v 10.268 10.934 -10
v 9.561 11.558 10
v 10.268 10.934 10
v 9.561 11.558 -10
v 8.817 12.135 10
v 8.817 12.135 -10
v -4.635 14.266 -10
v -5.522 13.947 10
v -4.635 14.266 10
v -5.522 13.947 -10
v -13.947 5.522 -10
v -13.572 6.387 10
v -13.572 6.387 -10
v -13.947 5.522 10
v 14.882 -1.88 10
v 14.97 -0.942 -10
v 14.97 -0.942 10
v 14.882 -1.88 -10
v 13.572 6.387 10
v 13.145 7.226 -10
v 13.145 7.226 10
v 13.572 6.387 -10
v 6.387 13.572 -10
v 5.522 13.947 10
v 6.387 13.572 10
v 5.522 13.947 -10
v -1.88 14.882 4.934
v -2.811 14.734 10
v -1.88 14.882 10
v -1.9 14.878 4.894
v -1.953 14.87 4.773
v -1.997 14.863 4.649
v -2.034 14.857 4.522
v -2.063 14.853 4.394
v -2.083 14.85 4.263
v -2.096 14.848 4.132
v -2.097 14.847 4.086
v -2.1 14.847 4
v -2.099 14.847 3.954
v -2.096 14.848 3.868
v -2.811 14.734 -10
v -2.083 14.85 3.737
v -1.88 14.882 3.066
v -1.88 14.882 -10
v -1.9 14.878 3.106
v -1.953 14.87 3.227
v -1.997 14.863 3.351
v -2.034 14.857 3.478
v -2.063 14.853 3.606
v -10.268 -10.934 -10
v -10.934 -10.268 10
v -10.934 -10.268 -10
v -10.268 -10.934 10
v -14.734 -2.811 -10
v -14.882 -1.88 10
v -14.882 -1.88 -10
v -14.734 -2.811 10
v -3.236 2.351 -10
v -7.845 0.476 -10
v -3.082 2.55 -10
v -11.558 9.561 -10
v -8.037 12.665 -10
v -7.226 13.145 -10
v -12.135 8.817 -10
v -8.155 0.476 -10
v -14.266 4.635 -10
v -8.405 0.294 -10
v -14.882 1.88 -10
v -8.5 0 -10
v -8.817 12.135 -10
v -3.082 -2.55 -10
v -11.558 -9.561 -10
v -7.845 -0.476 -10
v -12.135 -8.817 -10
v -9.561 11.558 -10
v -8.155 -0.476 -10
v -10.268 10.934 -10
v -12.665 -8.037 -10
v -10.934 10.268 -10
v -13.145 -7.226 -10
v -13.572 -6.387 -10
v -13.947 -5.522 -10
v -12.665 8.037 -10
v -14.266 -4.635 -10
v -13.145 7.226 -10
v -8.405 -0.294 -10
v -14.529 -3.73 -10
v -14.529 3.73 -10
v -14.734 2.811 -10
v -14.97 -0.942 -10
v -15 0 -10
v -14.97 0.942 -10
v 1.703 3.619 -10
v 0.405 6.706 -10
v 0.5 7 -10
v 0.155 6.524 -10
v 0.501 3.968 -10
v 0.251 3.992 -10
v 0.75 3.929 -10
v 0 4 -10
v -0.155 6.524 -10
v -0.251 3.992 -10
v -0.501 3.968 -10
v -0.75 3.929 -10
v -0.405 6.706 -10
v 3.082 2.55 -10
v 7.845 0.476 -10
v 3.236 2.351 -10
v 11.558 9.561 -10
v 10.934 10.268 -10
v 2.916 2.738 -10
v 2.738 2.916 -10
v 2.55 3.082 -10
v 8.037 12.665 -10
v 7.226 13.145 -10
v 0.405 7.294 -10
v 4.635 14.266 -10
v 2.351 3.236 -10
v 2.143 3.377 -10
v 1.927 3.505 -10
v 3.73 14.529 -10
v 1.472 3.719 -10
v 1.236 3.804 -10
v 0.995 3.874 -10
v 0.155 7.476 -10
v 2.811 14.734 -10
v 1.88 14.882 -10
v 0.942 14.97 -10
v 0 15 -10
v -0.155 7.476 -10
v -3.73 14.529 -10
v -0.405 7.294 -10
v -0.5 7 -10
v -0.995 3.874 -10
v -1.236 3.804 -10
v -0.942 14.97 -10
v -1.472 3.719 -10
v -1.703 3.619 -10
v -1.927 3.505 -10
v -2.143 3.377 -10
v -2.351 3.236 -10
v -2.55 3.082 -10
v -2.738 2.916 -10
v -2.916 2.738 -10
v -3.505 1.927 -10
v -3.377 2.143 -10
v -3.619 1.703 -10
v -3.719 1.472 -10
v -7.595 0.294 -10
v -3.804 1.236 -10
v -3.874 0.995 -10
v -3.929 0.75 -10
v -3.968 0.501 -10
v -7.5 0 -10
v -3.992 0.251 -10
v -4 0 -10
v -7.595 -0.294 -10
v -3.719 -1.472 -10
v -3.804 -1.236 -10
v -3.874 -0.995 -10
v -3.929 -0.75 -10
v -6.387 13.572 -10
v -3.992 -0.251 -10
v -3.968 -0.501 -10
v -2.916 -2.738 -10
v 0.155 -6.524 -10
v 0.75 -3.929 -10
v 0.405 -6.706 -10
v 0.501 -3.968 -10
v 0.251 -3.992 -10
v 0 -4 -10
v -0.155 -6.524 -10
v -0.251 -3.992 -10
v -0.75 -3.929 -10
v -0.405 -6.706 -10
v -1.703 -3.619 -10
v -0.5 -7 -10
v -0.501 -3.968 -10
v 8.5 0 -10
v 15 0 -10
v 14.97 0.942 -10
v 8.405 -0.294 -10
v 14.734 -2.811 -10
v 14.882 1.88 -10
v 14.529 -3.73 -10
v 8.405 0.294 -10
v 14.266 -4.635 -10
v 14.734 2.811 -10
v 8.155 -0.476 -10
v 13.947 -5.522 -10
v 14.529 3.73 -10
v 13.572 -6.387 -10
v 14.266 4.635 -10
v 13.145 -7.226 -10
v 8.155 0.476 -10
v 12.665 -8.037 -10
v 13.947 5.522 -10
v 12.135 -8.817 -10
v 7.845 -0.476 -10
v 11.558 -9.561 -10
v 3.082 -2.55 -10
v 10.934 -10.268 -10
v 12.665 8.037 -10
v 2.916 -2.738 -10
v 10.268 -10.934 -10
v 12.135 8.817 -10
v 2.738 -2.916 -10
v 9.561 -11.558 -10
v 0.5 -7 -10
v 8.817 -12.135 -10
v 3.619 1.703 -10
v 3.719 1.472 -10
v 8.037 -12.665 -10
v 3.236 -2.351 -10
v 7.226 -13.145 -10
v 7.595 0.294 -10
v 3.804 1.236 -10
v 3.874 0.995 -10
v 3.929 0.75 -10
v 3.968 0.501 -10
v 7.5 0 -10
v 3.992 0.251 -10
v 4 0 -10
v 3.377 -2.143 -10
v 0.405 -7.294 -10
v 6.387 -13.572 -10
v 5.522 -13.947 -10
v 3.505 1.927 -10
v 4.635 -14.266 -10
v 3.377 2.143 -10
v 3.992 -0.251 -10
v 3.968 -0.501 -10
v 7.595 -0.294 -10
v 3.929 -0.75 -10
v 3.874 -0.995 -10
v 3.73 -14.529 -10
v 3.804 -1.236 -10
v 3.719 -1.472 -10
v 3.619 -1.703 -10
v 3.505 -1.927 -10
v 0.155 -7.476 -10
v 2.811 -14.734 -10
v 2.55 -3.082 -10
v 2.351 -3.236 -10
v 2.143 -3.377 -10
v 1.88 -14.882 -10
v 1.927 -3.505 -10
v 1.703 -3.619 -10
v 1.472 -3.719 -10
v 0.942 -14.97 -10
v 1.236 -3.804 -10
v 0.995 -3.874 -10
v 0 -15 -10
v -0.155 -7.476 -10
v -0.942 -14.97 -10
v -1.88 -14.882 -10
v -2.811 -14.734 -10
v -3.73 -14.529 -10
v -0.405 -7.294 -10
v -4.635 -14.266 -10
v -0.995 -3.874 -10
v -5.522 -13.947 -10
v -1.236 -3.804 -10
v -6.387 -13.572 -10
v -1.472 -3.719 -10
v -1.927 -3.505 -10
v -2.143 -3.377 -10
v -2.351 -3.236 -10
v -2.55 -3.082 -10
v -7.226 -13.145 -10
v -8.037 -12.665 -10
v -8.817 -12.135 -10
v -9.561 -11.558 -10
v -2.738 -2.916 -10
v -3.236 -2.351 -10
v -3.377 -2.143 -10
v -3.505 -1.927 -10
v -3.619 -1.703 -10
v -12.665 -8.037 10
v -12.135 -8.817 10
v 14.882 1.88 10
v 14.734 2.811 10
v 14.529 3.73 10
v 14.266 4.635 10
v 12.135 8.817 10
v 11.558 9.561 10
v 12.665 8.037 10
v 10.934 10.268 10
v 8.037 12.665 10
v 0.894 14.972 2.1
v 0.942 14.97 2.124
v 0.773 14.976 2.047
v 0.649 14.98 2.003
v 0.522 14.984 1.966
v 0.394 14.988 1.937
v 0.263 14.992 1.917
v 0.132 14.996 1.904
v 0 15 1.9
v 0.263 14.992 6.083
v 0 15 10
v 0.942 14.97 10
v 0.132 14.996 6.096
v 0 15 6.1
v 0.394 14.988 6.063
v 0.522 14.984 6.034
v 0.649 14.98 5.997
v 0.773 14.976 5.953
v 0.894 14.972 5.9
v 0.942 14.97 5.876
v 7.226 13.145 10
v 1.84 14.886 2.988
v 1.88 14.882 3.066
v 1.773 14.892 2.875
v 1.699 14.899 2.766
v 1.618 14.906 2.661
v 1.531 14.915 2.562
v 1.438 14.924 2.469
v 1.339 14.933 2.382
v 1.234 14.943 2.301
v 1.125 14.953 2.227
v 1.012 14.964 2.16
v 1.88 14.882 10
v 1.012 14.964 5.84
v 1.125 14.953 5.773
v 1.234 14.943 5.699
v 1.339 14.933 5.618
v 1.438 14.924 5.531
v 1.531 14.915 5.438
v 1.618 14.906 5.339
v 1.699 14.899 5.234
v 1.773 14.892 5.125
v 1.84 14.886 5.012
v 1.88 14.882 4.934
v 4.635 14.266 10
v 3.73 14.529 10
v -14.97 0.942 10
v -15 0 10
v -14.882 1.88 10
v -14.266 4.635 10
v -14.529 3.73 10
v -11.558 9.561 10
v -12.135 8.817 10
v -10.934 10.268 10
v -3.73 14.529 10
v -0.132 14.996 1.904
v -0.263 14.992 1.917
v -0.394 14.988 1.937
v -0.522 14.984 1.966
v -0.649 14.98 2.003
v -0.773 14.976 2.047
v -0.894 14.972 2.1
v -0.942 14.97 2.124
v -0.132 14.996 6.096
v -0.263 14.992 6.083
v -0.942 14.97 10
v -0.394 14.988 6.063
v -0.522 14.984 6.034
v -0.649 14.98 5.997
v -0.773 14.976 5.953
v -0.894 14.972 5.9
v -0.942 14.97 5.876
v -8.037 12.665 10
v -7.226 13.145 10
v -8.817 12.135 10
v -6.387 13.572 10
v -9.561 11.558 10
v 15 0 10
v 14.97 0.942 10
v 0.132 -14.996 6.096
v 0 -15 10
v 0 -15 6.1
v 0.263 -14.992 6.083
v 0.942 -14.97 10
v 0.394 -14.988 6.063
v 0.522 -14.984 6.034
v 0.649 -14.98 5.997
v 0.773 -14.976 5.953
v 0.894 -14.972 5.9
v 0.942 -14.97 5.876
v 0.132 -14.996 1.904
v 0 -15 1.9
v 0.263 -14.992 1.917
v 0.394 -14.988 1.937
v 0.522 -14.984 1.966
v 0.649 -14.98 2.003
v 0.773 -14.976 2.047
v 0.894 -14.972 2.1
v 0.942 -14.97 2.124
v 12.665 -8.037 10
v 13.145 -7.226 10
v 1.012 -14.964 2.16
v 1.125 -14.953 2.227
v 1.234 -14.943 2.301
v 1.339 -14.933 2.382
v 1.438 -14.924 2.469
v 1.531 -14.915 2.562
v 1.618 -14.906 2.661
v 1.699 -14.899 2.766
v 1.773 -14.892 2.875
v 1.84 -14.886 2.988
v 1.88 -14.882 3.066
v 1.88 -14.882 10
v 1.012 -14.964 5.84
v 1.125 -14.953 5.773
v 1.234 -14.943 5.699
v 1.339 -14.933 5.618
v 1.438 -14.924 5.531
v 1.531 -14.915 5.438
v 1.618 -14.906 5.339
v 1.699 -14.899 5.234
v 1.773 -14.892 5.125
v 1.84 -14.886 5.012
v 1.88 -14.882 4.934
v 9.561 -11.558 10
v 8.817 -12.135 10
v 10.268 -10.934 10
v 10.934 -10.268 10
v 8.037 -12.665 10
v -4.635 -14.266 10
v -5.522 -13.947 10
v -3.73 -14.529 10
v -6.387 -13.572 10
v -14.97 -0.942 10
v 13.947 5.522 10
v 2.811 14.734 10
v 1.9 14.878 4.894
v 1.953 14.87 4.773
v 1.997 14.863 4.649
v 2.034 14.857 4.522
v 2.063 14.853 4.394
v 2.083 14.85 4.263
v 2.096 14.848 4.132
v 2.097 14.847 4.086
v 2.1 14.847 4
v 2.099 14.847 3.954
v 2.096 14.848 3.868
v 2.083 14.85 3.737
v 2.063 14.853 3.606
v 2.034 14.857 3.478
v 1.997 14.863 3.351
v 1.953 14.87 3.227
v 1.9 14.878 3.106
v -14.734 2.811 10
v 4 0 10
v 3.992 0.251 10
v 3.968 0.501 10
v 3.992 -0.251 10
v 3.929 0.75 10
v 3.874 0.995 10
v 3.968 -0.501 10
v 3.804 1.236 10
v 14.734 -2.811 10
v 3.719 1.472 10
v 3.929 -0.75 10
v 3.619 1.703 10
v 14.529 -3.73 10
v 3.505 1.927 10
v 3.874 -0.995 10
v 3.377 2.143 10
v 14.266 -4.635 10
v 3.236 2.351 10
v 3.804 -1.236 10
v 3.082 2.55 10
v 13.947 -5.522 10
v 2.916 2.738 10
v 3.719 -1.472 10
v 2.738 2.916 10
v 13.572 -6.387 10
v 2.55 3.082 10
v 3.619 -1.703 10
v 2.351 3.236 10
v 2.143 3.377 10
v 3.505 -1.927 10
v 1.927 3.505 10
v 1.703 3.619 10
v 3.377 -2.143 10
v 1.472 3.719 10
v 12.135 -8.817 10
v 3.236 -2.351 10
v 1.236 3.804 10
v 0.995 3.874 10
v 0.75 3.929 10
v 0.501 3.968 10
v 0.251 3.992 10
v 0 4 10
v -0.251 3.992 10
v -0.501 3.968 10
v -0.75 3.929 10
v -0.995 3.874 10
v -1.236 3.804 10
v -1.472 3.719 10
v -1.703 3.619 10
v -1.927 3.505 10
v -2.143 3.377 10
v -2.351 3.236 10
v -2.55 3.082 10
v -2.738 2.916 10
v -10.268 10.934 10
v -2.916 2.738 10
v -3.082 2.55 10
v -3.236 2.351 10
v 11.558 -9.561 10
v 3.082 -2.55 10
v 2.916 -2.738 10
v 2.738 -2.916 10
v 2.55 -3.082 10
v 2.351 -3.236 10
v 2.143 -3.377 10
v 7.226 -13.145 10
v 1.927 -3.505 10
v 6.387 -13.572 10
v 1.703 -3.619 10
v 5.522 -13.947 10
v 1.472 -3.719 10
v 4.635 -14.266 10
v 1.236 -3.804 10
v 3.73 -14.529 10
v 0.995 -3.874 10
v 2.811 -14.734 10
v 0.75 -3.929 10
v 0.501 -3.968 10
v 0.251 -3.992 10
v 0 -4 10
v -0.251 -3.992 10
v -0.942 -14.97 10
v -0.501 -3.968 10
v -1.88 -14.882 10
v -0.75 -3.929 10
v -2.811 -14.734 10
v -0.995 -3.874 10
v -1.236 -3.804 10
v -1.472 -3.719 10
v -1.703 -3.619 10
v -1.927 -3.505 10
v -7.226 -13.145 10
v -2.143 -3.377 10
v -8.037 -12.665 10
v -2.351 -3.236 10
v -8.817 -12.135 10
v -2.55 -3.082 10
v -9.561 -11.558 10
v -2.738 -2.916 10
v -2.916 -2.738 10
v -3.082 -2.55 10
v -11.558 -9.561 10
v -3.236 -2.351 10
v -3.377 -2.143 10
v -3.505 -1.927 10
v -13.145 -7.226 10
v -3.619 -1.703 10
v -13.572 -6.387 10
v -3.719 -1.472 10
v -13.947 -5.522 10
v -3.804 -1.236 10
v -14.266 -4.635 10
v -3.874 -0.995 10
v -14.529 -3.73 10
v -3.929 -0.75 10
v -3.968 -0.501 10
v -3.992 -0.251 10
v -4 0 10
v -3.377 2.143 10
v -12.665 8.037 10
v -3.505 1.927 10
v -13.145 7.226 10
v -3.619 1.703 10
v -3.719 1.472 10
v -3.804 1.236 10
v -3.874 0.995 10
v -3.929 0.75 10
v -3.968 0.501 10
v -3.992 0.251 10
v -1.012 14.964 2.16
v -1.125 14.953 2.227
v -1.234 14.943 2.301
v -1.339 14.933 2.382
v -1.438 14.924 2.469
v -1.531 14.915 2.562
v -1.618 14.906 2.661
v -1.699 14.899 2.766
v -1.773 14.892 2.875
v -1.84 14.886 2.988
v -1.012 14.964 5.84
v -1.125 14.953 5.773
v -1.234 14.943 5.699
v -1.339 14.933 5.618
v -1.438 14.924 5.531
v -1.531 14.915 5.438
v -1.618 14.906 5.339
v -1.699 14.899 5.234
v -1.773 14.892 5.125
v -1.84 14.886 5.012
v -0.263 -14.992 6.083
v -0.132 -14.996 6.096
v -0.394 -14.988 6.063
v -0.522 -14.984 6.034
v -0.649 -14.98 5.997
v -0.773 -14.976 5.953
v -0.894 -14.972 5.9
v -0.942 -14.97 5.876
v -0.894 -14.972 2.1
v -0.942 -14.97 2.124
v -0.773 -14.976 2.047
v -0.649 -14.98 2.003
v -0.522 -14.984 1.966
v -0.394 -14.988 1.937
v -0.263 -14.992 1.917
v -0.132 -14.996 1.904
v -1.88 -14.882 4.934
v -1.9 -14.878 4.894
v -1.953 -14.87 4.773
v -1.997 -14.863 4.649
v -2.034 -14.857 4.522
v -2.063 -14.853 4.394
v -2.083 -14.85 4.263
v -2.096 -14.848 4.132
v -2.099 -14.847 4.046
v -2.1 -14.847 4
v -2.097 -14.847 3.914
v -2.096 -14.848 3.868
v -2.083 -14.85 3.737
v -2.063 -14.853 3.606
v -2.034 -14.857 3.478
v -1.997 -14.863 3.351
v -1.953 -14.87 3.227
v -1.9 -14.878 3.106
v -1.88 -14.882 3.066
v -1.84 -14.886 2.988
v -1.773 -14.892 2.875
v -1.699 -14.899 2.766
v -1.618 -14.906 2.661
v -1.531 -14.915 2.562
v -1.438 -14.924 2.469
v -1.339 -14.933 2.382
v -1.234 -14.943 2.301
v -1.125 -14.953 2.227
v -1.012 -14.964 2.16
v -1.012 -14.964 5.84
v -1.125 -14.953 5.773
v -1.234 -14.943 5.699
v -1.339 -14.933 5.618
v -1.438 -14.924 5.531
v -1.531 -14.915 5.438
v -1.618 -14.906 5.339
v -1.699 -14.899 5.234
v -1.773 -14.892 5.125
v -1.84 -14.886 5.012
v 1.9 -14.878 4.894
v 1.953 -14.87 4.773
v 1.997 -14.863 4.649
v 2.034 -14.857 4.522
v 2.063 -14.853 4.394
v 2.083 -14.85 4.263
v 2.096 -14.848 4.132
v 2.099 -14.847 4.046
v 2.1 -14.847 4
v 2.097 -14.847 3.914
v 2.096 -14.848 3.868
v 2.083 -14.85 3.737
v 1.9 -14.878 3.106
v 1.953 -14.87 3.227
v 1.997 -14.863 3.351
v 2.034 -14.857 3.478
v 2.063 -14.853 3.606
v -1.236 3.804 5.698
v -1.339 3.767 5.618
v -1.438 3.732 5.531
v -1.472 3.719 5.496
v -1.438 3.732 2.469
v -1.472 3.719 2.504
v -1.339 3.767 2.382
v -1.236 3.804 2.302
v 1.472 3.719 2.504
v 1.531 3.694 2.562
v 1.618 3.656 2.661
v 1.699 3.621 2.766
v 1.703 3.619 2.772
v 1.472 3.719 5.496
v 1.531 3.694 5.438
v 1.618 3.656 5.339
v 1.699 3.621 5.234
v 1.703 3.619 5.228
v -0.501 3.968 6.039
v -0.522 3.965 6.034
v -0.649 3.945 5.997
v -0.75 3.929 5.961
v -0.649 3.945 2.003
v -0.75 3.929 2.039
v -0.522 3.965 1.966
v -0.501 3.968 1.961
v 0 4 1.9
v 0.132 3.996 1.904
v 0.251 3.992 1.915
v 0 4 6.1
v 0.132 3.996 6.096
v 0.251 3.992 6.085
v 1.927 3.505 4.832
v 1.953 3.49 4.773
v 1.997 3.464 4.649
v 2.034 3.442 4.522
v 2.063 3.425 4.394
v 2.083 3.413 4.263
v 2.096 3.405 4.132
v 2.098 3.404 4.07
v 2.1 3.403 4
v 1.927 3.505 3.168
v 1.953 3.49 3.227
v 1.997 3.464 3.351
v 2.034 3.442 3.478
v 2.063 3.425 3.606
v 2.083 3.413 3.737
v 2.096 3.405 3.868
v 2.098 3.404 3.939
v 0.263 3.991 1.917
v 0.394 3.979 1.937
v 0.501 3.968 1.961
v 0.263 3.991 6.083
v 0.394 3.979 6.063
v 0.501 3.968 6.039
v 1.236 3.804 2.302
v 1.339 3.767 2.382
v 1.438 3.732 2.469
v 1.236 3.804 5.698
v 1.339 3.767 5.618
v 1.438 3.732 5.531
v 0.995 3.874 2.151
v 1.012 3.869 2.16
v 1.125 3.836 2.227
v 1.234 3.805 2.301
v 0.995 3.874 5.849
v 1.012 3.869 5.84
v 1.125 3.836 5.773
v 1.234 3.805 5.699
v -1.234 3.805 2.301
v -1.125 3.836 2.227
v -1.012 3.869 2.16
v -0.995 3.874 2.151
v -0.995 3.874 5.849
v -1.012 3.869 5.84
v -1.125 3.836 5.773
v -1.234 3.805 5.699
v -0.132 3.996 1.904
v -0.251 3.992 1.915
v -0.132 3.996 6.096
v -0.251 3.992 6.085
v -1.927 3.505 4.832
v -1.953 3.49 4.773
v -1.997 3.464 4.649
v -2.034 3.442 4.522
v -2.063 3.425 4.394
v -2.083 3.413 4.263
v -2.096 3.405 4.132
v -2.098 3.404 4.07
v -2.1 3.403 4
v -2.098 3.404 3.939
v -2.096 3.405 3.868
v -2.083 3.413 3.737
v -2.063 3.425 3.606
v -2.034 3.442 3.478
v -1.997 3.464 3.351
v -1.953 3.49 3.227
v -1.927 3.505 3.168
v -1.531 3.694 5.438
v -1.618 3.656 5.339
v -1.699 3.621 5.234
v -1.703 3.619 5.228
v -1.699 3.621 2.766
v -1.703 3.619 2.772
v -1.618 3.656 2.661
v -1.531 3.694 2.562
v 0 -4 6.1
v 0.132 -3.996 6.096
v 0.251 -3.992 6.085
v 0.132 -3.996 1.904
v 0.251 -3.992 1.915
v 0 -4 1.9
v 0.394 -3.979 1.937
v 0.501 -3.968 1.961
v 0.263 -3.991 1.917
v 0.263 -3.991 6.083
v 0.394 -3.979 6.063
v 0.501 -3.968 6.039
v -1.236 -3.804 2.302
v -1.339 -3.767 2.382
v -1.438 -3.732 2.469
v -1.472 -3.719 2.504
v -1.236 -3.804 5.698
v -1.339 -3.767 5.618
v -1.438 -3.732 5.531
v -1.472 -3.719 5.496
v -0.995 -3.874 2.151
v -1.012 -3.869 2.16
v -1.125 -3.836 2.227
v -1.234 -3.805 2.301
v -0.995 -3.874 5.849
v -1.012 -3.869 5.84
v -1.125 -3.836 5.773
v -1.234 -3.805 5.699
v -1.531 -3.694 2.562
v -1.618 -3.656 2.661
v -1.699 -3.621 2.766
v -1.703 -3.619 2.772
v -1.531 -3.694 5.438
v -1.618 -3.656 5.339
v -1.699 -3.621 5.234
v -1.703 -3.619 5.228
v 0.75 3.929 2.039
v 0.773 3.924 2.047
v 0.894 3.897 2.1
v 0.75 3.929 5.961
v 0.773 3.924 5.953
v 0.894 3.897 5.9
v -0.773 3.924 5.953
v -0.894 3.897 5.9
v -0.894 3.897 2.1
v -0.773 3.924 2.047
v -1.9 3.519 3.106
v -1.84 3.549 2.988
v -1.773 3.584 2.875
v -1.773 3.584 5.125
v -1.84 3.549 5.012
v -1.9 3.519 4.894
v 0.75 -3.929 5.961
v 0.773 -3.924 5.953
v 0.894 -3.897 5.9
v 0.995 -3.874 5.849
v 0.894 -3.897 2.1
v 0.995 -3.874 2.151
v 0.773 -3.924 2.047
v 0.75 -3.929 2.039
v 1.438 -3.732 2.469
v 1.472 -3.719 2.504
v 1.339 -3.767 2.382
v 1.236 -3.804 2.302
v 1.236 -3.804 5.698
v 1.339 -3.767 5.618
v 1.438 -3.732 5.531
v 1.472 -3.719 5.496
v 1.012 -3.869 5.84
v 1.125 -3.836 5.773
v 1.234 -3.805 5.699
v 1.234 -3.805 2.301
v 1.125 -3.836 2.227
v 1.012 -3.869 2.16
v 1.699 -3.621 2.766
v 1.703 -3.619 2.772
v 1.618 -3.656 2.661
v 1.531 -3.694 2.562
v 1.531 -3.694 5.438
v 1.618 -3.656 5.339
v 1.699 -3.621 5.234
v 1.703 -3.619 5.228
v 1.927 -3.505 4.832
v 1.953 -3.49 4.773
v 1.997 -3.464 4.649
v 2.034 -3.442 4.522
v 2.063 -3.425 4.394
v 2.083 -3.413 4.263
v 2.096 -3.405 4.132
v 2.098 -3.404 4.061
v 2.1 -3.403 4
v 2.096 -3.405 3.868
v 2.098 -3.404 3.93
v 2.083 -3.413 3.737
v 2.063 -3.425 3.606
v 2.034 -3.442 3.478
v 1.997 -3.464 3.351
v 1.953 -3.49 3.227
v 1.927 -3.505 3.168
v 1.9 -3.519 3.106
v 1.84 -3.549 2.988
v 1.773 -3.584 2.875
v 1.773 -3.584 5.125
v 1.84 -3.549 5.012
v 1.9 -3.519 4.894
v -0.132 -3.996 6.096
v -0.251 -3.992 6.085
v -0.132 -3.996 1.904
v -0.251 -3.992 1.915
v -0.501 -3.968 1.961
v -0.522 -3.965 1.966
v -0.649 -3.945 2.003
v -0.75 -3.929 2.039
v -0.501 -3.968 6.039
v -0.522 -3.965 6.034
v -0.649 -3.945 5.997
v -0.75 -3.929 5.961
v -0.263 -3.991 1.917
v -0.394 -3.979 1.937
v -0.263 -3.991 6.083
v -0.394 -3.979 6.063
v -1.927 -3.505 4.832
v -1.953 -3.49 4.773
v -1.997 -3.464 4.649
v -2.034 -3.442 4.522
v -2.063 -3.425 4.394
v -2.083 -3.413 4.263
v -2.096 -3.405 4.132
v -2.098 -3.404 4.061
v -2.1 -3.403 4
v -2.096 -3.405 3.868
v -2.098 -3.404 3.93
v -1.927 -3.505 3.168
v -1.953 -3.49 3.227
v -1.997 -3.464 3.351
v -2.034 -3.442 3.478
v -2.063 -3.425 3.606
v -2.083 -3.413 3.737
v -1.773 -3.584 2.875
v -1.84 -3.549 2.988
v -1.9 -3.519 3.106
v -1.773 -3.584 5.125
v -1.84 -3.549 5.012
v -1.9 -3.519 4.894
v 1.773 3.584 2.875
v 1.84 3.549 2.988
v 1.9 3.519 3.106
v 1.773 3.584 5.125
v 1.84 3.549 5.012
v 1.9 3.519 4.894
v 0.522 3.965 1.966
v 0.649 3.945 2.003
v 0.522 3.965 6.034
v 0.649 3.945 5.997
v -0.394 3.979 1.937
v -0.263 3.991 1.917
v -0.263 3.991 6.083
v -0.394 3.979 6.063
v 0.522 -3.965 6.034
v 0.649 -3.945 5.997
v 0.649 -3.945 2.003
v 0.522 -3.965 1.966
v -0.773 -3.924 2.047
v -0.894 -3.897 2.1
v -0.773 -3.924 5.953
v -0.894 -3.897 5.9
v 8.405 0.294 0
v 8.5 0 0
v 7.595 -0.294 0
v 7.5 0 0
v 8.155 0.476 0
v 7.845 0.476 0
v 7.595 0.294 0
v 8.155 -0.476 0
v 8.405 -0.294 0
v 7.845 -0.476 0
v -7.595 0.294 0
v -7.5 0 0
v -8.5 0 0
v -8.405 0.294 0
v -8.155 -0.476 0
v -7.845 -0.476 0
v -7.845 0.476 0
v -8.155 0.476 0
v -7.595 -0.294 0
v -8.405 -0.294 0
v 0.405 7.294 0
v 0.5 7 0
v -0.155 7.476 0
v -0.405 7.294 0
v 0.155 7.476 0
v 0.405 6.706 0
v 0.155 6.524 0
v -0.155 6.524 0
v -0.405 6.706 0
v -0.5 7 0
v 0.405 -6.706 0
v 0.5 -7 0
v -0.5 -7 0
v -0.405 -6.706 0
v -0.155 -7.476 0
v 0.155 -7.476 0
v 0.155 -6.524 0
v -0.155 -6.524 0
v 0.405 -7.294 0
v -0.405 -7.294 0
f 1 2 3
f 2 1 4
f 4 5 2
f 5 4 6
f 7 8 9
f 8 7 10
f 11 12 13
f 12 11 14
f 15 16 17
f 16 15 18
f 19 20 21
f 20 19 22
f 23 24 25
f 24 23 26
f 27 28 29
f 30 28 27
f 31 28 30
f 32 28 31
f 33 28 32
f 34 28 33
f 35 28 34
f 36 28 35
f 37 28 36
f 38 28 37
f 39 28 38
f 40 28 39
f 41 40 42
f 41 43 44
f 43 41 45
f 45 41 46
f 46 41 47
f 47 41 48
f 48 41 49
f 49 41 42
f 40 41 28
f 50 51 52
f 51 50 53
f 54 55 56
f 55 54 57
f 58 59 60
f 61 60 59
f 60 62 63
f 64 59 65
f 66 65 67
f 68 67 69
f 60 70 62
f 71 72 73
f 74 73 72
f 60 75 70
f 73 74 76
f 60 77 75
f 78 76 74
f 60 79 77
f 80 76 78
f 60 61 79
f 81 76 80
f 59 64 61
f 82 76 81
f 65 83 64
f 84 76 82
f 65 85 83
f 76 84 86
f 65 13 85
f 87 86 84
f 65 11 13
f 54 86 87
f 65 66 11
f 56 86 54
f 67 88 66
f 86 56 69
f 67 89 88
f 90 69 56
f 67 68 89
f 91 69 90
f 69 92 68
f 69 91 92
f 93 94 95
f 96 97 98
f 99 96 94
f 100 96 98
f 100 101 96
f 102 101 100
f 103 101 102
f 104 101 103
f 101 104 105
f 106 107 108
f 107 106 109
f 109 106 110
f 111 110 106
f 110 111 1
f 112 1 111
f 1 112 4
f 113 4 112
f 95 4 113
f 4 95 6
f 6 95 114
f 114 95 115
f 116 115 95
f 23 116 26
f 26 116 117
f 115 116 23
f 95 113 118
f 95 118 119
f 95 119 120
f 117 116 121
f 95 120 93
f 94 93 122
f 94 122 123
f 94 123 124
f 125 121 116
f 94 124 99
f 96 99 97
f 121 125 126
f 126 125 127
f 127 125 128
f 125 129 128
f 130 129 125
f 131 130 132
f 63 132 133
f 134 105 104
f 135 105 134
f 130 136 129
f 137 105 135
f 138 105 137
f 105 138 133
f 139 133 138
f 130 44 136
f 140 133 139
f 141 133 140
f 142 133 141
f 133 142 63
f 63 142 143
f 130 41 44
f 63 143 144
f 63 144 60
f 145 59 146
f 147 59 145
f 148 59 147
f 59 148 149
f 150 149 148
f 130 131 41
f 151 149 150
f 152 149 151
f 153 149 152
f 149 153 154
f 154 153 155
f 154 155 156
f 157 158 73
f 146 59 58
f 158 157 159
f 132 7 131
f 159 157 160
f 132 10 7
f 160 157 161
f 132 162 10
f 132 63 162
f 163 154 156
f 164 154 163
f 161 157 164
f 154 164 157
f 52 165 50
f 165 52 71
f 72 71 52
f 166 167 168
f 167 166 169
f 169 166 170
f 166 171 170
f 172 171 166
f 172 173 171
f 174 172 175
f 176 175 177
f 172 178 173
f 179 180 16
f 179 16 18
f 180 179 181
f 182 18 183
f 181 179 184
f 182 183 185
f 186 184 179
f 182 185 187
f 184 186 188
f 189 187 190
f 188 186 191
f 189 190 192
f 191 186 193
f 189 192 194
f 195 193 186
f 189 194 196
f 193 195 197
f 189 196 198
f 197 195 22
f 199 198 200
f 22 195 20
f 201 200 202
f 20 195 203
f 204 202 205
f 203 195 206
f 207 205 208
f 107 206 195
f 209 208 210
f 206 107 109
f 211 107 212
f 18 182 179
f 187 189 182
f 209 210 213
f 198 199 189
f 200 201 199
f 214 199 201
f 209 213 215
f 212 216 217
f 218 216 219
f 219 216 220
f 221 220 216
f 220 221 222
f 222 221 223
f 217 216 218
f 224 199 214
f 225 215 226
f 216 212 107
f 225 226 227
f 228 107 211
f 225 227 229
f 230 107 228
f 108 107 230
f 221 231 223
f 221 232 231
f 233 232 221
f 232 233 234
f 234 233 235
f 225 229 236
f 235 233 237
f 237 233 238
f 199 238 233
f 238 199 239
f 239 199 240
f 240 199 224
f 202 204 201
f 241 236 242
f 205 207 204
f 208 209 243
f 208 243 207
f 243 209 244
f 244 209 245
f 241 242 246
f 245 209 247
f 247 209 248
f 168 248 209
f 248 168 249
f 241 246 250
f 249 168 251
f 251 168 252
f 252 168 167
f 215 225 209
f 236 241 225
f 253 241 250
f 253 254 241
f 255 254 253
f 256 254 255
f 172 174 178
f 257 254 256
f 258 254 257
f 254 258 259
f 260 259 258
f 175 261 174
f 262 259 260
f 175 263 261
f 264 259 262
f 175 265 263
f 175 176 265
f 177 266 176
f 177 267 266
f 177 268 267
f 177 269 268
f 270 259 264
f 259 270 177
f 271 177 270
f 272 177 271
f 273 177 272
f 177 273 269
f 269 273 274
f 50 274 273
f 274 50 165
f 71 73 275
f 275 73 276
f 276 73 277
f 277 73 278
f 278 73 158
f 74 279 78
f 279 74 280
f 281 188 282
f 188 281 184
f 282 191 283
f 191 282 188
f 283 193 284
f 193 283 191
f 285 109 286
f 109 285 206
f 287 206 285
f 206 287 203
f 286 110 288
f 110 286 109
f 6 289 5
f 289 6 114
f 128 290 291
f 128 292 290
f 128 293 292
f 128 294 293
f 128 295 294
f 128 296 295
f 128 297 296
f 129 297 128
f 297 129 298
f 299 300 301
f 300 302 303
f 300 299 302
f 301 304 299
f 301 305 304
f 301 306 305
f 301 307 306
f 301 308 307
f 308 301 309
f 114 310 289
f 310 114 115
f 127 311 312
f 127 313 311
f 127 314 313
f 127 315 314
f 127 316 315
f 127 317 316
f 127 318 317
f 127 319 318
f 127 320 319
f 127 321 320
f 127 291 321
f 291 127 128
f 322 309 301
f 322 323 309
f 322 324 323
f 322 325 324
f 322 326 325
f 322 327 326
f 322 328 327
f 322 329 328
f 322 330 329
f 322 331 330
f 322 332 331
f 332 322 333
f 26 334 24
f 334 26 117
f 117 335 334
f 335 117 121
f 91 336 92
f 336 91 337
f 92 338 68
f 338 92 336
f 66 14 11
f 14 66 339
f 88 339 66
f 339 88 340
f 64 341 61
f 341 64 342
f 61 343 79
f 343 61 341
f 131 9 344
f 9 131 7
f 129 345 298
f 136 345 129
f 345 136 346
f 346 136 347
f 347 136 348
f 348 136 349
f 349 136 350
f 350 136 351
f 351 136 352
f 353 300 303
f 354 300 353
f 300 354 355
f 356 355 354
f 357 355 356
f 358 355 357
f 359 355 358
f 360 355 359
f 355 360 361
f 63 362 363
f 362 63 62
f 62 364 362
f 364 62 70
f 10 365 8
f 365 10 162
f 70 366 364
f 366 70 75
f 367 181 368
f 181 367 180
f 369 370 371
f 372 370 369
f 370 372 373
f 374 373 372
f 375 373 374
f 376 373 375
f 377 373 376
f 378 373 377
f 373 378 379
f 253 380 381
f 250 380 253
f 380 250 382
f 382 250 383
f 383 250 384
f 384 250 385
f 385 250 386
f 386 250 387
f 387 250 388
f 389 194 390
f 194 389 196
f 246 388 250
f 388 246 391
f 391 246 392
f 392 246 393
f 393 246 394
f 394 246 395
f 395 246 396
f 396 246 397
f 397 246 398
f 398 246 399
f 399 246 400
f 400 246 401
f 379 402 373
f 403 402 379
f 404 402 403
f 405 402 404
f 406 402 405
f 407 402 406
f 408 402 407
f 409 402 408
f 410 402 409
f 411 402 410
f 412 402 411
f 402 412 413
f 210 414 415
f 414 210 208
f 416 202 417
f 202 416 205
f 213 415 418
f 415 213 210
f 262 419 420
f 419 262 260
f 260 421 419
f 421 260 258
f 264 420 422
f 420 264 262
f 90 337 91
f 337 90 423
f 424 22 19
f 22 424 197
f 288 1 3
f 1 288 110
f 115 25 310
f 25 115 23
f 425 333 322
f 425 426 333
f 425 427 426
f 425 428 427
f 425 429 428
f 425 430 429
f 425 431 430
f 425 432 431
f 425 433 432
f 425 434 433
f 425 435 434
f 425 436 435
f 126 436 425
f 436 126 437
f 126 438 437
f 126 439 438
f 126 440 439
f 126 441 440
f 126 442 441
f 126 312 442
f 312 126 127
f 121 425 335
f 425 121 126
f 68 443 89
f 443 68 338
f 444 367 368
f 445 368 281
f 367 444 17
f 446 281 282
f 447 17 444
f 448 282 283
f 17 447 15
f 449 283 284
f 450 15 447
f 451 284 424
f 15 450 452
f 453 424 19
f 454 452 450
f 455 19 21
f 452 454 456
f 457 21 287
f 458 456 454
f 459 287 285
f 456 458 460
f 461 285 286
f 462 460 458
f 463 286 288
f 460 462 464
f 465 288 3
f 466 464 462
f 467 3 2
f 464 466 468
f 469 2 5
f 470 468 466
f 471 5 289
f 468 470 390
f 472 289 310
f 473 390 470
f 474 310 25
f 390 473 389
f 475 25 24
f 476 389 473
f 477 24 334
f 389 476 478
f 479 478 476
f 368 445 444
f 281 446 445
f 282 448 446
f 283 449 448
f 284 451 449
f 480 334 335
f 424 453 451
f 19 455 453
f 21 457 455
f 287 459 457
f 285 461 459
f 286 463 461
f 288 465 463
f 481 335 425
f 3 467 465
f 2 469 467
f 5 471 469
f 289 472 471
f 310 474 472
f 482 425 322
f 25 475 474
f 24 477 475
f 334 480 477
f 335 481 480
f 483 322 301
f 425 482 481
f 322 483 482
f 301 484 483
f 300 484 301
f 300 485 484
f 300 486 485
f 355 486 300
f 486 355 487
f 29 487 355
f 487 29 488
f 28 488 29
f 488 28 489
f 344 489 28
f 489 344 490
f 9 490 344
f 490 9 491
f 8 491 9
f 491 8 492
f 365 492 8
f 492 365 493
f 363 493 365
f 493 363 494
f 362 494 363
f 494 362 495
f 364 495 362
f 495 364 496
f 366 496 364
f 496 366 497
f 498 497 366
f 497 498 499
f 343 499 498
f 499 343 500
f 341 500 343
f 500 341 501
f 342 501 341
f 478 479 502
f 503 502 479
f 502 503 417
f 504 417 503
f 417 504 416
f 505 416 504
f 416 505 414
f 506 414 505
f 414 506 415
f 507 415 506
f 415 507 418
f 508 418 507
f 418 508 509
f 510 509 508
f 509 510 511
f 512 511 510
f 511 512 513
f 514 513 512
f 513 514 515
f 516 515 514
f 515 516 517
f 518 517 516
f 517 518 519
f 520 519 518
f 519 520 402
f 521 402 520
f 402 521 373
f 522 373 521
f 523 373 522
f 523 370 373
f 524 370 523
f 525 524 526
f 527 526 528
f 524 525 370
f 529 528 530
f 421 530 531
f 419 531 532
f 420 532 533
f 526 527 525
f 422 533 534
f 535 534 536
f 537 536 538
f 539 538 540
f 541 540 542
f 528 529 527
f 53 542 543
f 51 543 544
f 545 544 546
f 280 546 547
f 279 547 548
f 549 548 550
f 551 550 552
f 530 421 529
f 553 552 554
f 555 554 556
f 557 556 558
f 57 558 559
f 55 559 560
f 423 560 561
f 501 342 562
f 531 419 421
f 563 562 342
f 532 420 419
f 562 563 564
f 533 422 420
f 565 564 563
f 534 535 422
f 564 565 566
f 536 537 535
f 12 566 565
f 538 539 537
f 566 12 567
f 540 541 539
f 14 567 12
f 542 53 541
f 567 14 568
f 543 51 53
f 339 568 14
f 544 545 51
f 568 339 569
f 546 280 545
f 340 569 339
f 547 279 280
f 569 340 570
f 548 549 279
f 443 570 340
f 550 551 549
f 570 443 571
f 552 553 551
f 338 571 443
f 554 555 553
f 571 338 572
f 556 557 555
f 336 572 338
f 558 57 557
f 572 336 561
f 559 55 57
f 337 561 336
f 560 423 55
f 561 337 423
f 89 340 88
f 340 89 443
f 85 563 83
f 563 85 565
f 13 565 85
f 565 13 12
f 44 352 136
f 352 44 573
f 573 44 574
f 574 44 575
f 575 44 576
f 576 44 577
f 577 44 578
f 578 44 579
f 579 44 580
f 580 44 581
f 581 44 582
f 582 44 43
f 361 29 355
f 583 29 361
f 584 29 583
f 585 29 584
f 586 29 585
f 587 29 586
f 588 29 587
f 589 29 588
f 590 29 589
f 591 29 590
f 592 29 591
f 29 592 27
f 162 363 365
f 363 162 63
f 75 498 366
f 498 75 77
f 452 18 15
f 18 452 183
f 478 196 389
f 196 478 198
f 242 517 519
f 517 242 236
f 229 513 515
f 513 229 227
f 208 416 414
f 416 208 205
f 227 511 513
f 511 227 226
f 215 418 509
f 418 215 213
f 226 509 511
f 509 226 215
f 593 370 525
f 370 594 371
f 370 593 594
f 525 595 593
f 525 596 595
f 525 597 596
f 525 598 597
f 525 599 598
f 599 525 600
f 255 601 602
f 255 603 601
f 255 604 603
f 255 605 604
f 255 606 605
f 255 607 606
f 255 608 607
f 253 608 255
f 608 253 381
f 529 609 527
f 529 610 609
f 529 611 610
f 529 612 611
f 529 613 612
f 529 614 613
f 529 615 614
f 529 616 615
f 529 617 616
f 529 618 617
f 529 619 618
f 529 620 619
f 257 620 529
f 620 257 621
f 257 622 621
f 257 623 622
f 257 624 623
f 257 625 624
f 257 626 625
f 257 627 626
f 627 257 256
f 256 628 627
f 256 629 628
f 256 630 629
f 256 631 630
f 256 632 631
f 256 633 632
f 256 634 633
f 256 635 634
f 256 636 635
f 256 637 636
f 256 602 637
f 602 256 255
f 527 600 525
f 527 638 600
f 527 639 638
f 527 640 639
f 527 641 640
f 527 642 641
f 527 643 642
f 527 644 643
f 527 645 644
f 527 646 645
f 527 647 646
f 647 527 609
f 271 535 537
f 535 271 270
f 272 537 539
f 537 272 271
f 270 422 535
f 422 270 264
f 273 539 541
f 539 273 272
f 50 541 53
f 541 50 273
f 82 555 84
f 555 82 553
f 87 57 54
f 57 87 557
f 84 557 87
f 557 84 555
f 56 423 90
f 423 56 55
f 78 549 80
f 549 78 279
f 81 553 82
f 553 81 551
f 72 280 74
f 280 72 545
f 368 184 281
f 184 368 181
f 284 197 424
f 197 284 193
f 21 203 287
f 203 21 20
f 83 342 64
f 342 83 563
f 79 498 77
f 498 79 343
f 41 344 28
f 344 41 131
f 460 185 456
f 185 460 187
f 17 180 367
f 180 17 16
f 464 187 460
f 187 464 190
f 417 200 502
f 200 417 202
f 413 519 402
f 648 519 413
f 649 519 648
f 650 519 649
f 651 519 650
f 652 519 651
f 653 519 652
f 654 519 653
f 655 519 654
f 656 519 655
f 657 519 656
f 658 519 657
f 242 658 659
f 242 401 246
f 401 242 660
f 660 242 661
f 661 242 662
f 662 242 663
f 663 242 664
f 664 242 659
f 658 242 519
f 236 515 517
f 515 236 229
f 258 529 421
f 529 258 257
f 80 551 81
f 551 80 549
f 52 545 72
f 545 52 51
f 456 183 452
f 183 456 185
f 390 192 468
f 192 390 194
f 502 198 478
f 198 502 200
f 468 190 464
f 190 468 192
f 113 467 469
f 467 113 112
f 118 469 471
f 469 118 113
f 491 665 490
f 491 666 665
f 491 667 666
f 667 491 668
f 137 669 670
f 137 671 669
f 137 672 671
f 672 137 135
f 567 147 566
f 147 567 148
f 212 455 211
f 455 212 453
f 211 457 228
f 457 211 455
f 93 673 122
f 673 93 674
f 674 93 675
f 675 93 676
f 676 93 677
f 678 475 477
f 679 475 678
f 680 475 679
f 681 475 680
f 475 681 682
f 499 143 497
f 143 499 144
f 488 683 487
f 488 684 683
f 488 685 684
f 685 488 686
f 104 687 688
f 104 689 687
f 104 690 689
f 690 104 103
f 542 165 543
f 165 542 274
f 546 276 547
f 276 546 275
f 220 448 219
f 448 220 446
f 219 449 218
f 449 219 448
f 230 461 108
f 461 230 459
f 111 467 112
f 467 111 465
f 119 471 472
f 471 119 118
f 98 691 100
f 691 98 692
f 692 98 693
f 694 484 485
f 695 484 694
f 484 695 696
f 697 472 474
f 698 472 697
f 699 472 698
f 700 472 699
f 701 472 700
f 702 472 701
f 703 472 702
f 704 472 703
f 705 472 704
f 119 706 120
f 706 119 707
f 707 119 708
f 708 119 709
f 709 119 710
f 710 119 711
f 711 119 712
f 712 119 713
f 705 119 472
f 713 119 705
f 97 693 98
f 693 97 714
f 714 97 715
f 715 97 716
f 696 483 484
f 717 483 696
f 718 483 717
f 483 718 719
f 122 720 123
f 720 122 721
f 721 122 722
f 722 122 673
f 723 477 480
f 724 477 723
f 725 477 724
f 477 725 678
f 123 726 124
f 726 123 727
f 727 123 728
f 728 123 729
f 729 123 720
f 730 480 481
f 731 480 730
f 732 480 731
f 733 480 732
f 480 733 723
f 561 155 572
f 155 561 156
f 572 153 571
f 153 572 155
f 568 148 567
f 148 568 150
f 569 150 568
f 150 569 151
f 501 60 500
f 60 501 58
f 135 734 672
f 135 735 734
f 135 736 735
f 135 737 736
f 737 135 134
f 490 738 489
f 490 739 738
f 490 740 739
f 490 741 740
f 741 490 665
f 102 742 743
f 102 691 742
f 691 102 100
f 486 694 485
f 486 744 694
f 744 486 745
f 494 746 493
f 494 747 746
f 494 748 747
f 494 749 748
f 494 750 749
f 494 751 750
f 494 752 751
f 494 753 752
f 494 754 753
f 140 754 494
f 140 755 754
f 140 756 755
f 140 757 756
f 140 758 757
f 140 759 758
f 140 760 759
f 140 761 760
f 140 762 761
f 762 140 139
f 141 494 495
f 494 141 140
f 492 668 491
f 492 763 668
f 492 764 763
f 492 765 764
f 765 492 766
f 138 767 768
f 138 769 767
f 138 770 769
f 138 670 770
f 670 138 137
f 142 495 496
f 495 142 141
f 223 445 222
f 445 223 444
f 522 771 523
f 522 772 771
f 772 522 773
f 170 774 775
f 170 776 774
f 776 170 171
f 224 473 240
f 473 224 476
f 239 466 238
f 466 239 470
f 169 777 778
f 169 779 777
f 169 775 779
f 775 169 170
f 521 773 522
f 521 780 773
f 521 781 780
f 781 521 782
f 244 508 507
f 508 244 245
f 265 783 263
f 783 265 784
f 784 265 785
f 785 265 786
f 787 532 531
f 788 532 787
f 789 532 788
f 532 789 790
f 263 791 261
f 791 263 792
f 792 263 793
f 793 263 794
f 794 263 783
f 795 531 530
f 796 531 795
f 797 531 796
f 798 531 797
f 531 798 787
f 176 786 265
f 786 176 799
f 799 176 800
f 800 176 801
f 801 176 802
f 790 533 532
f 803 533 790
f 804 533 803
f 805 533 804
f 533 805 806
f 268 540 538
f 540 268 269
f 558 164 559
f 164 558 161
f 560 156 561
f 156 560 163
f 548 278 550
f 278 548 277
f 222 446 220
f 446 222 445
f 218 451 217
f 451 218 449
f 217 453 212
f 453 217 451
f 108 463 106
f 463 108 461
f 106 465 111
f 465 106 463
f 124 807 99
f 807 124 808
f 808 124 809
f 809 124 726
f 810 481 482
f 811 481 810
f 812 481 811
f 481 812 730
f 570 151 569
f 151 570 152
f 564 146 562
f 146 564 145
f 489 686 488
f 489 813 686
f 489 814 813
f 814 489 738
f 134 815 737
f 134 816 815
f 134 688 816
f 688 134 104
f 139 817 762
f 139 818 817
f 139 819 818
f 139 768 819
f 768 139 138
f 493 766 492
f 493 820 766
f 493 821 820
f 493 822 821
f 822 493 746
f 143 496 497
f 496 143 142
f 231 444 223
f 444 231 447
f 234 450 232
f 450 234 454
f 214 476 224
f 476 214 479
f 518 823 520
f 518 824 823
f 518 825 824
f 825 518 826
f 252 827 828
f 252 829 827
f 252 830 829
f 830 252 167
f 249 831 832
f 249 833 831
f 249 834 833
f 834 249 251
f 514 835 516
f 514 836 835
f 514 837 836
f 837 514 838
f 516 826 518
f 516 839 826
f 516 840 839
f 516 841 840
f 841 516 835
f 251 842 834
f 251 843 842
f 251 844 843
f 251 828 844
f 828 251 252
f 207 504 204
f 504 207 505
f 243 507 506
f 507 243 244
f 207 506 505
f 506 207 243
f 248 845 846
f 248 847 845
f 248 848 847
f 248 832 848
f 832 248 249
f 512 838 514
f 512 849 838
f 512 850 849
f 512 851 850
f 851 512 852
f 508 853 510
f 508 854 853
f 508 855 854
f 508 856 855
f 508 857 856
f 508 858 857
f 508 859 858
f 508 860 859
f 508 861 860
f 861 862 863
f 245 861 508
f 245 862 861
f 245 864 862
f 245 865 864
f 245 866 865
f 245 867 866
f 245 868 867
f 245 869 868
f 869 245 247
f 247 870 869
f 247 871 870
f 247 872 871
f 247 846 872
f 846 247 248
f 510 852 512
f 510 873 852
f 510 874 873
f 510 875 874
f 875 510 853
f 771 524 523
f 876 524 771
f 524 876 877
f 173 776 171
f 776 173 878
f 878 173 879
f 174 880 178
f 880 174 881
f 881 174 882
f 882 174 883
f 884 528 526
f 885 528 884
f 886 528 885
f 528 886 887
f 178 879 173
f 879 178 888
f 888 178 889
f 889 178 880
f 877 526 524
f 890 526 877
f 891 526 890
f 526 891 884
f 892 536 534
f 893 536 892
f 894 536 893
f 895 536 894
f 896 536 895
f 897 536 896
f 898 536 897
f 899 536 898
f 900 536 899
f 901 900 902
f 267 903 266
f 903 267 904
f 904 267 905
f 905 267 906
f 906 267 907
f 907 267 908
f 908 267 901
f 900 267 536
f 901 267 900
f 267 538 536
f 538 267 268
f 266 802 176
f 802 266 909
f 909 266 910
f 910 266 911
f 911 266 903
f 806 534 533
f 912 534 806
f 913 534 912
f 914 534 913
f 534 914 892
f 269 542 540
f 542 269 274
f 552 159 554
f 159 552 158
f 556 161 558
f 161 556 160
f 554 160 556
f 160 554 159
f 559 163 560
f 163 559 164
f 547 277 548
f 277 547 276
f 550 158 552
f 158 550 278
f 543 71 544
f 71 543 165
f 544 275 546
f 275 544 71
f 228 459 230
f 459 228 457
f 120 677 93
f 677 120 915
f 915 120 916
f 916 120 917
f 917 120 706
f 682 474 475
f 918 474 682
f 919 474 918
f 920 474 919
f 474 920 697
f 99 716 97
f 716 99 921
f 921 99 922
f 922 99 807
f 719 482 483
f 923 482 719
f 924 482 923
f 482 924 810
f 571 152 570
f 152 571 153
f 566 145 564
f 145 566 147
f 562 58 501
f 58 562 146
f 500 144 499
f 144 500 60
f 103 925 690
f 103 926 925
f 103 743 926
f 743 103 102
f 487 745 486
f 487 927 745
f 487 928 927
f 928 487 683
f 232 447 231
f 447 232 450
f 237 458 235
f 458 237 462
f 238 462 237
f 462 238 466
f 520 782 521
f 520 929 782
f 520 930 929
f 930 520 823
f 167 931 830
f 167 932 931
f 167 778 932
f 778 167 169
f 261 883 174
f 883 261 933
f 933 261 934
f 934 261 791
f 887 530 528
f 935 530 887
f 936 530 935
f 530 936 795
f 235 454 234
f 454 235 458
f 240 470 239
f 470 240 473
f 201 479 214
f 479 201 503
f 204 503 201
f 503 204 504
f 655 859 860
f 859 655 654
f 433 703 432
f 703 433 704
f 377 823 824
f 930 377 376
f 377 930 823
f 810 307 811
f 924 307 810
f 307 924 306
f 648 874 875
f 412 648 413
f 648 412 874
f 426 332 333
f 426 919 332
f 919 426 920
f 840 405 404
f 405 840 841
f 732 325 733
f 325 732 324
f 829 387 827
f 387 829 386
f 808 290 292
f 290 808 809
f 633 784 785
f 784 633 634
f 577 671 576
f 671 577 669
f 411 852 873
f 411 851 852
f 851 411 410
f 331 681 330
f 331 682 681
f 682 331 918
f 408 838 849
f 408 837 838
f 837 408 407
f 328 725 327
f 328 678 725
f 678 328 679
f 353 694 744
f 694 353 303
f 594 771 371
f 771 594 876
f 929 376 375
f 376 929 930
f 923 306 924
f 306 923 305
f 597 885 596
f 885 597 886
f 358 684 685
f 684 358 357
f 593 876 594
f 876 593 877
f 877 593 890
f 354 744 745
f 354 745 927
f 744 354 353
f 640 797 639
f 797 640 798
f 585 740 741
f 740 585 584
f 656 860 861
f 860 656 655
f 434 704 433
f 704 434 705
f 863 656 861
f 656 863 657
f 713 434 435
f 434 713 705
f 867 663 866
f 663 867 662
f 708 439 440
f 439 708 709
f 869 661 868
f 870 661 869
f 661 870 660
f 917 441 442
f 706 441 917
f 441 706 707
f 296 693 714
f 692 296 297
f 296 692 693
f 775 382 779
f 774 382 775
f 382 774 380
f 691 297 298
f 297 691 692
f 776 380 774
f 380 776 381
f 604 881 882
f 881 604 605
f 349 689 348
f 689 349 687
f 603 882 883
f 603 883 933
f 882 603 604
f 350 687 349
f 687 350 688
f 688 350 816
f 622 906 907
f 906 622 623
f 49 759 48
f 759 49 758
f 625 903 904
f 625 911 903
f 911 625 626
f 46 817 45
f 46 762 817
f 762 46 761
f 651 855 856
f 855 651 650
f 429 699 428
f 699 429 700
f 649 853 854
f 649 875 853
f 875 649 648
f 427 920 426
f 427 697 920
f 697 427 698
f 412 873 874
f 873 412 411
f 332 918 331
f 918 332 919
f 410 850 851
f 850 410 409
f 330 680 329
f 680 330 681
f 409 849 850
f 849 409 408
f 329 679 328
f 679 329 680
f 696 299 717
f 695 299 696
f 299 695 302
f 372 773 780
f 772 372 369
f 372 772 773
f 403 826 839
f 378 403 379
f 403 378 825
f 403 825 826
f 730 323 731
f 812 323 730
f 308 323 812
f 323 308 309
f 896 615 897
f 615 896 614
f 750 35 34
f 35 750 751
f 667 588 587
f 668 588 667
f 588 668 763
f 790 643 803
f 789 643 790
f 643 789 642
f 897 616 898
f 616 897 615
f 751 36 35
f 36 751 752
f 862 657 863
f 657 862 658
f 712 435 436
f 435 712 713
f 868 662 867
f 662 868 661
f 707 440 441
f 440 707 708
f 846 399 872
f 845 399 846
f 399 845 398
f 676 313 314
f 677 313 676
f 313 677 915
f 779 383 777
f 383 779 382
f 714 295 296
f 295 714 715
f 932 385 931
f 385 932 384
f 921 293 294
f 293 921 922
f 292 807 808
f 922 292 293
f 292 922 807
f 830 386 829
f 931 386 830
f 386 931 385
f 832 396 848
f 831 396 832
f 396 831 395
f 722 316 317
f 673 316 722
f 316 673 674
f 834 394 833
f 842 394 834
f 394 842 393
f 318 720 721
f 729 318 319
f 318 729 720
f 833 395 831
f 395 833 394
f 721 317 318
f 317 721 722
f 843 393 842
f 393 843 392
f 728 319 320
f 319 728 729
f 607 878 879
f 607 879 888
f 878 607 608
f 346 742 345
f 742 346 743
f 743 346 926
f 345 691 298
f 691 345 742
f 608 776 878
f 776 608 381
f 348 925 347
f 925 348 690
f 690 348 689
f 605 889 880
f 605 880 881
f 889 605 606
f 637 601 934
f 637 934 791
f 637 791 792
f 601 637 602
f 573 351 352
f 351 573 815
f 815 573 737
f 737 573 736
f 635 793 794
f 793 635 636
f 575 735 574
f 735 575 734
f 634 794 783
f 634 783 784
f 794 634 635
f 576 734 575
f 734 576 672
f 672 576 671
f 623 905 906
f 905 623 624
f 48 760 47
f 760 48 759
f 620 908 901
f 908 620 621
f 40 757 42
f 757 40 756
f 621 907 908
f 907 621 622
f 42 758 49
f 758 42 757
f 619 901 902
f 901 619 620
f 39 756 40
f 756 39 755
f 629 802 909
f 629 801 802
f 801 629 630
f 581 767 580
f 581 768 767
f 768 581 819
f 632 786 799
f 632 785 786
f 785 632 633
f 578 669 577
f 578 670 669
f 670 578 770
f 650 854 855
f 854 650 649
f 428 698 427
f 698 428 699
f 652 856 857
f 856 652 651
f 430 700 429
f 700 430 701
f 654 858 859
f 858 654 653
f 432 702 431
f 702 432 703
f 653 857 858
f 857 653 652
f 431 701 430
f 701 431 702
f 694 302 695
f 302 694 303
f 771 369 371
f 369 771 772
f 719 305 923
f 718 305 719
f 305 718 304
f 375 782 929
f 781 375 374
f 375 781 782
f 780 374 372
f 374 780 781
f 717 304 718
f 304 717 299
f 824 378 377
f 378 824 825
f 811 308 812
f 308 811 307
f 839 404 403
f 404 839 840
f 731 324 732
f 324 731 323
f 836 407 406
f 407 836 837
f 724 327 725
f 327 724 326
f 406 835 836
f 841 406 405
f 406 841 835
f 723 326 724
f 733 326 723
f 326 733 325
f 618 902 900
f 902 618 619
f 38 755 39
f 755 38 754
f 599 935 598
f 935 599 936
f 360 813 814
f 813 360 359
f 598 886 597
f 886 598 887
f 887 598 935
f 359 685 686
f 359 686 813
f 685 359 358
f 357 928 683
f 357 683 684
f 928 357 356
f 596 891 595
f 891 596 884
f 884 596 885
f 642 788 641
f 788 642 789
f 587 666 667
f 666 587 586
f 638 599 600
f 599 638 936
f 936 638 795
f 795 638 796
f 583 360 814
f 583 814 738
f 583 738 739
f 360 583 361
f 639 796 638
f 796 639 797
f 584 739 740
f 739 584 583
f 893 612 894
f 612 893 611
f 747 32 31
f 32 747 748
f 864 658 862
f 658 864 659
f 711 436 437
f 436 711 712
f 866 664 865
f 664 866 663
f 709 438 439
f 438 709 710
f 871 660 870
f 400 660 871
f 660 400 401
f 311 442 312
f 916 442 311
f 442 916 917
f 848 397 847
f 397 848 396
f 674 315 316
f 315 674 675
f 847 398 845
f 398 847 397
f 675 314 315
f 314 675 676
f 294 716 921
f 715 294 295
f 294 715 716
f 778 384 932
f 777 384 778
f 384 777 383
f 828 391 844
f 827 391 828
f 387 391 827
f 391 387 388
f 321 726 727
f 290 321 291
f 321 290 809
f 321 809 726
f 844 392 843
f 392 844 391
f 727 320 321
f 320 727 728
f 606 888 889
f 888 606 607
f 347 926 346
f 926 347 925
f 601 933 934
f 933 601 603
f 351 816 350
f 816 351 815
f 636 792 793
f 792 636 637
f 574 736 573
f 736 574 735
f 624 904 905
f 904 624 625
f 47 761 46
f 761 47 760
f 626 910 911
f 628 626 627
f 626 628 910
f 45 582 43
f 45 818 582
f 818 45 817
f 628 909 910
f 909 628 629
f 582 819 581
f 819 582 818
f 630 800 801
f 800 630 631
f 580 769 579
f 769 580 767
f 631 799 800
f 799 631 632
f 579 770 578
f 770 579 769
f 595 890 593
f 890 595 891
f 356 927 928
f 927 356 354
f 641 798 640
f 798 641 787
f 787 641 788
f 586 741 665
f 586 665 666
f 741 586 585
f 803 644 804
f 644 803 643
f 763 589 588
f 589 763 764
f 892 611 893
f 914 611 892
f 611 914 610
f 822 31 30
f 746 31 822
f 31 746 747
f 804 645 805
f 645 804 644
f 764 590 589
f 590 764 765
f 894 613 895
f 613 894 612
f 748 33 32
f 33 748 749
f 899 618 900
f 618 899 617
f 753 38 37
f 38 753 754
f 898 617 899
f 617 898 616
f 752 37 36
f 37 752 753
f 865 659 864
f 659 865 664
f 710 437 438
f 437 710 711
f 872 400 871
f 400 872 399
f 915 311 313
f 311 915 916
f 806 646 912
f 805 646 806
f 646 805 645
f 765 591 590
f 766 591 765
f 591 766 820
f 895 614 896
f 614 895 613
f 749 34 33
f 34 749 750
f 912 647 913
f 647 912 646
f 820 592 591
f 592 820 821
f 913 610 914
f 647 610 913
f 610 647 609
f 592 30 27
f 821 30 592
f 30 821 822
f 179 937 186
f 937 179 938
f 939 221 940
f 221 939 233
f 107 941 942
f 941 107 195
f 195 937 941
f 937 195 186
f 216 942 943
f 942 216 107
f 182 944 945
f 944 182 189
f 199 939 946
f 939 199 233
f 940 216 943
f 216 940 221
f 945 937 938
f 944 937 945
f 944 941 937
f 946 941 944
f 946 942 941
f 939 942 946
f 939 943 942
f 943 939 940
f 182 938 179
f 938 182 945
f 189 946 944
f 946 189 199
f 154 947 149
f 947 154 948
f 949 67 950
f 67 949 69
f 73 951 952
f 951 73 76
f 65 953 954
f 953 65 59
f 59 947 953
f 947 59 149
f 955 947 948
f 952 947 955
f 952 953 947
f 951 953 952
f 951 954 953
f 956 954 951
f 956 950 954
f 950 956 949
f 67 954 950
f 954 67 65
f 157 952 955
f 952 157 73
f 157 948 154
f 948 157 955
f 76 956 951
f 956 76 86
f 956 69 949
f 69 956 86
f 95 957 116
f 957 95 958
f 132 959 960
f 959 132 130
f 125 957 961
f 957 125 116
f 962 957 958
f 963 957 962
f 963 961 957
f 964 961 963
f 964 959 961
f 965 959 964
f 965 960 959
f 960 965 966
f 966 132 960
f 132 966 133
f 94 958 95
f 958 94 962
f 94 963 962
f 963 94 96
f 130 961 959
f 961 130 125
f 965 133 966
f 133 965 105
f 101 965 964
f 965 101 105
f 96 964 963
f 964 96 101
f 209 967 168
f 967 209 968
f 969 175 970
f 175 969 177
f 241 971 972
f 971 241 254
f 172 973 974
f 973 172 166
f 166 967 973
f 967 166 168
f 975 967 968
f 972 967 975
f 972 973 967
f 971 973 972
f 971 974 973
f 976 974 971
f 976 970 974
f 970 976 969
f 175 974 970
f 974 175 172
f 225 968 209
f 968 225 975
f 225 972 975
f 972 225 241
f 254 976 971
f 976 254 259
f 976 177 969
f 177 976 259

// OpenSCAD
difference()
{
    cylinder (h = 20, r=15, center = true, $fn=100);
    cylinder (h = 20, r=4, center = true, $fn=100);
    translate ([0,0,4])rotate([90,0,0]) cylinder (h = 100, r=2.1, center = true, $fn=100);
    
    translate ([8,0,-5])cylinder (h = 10, r=0.5, center = true, $fn=10);
    translate ([-8,0,-5])cylinder (h = 10, r=0.5, center = true, $fn=10);
    translate ([0,7,-5])cylinder (h = 10, r=0.5, center = true, $fn=10);
    translate ([0,-7,-5])cylinder (h = 10, r=0.5, center = true, $fn=10);
}
